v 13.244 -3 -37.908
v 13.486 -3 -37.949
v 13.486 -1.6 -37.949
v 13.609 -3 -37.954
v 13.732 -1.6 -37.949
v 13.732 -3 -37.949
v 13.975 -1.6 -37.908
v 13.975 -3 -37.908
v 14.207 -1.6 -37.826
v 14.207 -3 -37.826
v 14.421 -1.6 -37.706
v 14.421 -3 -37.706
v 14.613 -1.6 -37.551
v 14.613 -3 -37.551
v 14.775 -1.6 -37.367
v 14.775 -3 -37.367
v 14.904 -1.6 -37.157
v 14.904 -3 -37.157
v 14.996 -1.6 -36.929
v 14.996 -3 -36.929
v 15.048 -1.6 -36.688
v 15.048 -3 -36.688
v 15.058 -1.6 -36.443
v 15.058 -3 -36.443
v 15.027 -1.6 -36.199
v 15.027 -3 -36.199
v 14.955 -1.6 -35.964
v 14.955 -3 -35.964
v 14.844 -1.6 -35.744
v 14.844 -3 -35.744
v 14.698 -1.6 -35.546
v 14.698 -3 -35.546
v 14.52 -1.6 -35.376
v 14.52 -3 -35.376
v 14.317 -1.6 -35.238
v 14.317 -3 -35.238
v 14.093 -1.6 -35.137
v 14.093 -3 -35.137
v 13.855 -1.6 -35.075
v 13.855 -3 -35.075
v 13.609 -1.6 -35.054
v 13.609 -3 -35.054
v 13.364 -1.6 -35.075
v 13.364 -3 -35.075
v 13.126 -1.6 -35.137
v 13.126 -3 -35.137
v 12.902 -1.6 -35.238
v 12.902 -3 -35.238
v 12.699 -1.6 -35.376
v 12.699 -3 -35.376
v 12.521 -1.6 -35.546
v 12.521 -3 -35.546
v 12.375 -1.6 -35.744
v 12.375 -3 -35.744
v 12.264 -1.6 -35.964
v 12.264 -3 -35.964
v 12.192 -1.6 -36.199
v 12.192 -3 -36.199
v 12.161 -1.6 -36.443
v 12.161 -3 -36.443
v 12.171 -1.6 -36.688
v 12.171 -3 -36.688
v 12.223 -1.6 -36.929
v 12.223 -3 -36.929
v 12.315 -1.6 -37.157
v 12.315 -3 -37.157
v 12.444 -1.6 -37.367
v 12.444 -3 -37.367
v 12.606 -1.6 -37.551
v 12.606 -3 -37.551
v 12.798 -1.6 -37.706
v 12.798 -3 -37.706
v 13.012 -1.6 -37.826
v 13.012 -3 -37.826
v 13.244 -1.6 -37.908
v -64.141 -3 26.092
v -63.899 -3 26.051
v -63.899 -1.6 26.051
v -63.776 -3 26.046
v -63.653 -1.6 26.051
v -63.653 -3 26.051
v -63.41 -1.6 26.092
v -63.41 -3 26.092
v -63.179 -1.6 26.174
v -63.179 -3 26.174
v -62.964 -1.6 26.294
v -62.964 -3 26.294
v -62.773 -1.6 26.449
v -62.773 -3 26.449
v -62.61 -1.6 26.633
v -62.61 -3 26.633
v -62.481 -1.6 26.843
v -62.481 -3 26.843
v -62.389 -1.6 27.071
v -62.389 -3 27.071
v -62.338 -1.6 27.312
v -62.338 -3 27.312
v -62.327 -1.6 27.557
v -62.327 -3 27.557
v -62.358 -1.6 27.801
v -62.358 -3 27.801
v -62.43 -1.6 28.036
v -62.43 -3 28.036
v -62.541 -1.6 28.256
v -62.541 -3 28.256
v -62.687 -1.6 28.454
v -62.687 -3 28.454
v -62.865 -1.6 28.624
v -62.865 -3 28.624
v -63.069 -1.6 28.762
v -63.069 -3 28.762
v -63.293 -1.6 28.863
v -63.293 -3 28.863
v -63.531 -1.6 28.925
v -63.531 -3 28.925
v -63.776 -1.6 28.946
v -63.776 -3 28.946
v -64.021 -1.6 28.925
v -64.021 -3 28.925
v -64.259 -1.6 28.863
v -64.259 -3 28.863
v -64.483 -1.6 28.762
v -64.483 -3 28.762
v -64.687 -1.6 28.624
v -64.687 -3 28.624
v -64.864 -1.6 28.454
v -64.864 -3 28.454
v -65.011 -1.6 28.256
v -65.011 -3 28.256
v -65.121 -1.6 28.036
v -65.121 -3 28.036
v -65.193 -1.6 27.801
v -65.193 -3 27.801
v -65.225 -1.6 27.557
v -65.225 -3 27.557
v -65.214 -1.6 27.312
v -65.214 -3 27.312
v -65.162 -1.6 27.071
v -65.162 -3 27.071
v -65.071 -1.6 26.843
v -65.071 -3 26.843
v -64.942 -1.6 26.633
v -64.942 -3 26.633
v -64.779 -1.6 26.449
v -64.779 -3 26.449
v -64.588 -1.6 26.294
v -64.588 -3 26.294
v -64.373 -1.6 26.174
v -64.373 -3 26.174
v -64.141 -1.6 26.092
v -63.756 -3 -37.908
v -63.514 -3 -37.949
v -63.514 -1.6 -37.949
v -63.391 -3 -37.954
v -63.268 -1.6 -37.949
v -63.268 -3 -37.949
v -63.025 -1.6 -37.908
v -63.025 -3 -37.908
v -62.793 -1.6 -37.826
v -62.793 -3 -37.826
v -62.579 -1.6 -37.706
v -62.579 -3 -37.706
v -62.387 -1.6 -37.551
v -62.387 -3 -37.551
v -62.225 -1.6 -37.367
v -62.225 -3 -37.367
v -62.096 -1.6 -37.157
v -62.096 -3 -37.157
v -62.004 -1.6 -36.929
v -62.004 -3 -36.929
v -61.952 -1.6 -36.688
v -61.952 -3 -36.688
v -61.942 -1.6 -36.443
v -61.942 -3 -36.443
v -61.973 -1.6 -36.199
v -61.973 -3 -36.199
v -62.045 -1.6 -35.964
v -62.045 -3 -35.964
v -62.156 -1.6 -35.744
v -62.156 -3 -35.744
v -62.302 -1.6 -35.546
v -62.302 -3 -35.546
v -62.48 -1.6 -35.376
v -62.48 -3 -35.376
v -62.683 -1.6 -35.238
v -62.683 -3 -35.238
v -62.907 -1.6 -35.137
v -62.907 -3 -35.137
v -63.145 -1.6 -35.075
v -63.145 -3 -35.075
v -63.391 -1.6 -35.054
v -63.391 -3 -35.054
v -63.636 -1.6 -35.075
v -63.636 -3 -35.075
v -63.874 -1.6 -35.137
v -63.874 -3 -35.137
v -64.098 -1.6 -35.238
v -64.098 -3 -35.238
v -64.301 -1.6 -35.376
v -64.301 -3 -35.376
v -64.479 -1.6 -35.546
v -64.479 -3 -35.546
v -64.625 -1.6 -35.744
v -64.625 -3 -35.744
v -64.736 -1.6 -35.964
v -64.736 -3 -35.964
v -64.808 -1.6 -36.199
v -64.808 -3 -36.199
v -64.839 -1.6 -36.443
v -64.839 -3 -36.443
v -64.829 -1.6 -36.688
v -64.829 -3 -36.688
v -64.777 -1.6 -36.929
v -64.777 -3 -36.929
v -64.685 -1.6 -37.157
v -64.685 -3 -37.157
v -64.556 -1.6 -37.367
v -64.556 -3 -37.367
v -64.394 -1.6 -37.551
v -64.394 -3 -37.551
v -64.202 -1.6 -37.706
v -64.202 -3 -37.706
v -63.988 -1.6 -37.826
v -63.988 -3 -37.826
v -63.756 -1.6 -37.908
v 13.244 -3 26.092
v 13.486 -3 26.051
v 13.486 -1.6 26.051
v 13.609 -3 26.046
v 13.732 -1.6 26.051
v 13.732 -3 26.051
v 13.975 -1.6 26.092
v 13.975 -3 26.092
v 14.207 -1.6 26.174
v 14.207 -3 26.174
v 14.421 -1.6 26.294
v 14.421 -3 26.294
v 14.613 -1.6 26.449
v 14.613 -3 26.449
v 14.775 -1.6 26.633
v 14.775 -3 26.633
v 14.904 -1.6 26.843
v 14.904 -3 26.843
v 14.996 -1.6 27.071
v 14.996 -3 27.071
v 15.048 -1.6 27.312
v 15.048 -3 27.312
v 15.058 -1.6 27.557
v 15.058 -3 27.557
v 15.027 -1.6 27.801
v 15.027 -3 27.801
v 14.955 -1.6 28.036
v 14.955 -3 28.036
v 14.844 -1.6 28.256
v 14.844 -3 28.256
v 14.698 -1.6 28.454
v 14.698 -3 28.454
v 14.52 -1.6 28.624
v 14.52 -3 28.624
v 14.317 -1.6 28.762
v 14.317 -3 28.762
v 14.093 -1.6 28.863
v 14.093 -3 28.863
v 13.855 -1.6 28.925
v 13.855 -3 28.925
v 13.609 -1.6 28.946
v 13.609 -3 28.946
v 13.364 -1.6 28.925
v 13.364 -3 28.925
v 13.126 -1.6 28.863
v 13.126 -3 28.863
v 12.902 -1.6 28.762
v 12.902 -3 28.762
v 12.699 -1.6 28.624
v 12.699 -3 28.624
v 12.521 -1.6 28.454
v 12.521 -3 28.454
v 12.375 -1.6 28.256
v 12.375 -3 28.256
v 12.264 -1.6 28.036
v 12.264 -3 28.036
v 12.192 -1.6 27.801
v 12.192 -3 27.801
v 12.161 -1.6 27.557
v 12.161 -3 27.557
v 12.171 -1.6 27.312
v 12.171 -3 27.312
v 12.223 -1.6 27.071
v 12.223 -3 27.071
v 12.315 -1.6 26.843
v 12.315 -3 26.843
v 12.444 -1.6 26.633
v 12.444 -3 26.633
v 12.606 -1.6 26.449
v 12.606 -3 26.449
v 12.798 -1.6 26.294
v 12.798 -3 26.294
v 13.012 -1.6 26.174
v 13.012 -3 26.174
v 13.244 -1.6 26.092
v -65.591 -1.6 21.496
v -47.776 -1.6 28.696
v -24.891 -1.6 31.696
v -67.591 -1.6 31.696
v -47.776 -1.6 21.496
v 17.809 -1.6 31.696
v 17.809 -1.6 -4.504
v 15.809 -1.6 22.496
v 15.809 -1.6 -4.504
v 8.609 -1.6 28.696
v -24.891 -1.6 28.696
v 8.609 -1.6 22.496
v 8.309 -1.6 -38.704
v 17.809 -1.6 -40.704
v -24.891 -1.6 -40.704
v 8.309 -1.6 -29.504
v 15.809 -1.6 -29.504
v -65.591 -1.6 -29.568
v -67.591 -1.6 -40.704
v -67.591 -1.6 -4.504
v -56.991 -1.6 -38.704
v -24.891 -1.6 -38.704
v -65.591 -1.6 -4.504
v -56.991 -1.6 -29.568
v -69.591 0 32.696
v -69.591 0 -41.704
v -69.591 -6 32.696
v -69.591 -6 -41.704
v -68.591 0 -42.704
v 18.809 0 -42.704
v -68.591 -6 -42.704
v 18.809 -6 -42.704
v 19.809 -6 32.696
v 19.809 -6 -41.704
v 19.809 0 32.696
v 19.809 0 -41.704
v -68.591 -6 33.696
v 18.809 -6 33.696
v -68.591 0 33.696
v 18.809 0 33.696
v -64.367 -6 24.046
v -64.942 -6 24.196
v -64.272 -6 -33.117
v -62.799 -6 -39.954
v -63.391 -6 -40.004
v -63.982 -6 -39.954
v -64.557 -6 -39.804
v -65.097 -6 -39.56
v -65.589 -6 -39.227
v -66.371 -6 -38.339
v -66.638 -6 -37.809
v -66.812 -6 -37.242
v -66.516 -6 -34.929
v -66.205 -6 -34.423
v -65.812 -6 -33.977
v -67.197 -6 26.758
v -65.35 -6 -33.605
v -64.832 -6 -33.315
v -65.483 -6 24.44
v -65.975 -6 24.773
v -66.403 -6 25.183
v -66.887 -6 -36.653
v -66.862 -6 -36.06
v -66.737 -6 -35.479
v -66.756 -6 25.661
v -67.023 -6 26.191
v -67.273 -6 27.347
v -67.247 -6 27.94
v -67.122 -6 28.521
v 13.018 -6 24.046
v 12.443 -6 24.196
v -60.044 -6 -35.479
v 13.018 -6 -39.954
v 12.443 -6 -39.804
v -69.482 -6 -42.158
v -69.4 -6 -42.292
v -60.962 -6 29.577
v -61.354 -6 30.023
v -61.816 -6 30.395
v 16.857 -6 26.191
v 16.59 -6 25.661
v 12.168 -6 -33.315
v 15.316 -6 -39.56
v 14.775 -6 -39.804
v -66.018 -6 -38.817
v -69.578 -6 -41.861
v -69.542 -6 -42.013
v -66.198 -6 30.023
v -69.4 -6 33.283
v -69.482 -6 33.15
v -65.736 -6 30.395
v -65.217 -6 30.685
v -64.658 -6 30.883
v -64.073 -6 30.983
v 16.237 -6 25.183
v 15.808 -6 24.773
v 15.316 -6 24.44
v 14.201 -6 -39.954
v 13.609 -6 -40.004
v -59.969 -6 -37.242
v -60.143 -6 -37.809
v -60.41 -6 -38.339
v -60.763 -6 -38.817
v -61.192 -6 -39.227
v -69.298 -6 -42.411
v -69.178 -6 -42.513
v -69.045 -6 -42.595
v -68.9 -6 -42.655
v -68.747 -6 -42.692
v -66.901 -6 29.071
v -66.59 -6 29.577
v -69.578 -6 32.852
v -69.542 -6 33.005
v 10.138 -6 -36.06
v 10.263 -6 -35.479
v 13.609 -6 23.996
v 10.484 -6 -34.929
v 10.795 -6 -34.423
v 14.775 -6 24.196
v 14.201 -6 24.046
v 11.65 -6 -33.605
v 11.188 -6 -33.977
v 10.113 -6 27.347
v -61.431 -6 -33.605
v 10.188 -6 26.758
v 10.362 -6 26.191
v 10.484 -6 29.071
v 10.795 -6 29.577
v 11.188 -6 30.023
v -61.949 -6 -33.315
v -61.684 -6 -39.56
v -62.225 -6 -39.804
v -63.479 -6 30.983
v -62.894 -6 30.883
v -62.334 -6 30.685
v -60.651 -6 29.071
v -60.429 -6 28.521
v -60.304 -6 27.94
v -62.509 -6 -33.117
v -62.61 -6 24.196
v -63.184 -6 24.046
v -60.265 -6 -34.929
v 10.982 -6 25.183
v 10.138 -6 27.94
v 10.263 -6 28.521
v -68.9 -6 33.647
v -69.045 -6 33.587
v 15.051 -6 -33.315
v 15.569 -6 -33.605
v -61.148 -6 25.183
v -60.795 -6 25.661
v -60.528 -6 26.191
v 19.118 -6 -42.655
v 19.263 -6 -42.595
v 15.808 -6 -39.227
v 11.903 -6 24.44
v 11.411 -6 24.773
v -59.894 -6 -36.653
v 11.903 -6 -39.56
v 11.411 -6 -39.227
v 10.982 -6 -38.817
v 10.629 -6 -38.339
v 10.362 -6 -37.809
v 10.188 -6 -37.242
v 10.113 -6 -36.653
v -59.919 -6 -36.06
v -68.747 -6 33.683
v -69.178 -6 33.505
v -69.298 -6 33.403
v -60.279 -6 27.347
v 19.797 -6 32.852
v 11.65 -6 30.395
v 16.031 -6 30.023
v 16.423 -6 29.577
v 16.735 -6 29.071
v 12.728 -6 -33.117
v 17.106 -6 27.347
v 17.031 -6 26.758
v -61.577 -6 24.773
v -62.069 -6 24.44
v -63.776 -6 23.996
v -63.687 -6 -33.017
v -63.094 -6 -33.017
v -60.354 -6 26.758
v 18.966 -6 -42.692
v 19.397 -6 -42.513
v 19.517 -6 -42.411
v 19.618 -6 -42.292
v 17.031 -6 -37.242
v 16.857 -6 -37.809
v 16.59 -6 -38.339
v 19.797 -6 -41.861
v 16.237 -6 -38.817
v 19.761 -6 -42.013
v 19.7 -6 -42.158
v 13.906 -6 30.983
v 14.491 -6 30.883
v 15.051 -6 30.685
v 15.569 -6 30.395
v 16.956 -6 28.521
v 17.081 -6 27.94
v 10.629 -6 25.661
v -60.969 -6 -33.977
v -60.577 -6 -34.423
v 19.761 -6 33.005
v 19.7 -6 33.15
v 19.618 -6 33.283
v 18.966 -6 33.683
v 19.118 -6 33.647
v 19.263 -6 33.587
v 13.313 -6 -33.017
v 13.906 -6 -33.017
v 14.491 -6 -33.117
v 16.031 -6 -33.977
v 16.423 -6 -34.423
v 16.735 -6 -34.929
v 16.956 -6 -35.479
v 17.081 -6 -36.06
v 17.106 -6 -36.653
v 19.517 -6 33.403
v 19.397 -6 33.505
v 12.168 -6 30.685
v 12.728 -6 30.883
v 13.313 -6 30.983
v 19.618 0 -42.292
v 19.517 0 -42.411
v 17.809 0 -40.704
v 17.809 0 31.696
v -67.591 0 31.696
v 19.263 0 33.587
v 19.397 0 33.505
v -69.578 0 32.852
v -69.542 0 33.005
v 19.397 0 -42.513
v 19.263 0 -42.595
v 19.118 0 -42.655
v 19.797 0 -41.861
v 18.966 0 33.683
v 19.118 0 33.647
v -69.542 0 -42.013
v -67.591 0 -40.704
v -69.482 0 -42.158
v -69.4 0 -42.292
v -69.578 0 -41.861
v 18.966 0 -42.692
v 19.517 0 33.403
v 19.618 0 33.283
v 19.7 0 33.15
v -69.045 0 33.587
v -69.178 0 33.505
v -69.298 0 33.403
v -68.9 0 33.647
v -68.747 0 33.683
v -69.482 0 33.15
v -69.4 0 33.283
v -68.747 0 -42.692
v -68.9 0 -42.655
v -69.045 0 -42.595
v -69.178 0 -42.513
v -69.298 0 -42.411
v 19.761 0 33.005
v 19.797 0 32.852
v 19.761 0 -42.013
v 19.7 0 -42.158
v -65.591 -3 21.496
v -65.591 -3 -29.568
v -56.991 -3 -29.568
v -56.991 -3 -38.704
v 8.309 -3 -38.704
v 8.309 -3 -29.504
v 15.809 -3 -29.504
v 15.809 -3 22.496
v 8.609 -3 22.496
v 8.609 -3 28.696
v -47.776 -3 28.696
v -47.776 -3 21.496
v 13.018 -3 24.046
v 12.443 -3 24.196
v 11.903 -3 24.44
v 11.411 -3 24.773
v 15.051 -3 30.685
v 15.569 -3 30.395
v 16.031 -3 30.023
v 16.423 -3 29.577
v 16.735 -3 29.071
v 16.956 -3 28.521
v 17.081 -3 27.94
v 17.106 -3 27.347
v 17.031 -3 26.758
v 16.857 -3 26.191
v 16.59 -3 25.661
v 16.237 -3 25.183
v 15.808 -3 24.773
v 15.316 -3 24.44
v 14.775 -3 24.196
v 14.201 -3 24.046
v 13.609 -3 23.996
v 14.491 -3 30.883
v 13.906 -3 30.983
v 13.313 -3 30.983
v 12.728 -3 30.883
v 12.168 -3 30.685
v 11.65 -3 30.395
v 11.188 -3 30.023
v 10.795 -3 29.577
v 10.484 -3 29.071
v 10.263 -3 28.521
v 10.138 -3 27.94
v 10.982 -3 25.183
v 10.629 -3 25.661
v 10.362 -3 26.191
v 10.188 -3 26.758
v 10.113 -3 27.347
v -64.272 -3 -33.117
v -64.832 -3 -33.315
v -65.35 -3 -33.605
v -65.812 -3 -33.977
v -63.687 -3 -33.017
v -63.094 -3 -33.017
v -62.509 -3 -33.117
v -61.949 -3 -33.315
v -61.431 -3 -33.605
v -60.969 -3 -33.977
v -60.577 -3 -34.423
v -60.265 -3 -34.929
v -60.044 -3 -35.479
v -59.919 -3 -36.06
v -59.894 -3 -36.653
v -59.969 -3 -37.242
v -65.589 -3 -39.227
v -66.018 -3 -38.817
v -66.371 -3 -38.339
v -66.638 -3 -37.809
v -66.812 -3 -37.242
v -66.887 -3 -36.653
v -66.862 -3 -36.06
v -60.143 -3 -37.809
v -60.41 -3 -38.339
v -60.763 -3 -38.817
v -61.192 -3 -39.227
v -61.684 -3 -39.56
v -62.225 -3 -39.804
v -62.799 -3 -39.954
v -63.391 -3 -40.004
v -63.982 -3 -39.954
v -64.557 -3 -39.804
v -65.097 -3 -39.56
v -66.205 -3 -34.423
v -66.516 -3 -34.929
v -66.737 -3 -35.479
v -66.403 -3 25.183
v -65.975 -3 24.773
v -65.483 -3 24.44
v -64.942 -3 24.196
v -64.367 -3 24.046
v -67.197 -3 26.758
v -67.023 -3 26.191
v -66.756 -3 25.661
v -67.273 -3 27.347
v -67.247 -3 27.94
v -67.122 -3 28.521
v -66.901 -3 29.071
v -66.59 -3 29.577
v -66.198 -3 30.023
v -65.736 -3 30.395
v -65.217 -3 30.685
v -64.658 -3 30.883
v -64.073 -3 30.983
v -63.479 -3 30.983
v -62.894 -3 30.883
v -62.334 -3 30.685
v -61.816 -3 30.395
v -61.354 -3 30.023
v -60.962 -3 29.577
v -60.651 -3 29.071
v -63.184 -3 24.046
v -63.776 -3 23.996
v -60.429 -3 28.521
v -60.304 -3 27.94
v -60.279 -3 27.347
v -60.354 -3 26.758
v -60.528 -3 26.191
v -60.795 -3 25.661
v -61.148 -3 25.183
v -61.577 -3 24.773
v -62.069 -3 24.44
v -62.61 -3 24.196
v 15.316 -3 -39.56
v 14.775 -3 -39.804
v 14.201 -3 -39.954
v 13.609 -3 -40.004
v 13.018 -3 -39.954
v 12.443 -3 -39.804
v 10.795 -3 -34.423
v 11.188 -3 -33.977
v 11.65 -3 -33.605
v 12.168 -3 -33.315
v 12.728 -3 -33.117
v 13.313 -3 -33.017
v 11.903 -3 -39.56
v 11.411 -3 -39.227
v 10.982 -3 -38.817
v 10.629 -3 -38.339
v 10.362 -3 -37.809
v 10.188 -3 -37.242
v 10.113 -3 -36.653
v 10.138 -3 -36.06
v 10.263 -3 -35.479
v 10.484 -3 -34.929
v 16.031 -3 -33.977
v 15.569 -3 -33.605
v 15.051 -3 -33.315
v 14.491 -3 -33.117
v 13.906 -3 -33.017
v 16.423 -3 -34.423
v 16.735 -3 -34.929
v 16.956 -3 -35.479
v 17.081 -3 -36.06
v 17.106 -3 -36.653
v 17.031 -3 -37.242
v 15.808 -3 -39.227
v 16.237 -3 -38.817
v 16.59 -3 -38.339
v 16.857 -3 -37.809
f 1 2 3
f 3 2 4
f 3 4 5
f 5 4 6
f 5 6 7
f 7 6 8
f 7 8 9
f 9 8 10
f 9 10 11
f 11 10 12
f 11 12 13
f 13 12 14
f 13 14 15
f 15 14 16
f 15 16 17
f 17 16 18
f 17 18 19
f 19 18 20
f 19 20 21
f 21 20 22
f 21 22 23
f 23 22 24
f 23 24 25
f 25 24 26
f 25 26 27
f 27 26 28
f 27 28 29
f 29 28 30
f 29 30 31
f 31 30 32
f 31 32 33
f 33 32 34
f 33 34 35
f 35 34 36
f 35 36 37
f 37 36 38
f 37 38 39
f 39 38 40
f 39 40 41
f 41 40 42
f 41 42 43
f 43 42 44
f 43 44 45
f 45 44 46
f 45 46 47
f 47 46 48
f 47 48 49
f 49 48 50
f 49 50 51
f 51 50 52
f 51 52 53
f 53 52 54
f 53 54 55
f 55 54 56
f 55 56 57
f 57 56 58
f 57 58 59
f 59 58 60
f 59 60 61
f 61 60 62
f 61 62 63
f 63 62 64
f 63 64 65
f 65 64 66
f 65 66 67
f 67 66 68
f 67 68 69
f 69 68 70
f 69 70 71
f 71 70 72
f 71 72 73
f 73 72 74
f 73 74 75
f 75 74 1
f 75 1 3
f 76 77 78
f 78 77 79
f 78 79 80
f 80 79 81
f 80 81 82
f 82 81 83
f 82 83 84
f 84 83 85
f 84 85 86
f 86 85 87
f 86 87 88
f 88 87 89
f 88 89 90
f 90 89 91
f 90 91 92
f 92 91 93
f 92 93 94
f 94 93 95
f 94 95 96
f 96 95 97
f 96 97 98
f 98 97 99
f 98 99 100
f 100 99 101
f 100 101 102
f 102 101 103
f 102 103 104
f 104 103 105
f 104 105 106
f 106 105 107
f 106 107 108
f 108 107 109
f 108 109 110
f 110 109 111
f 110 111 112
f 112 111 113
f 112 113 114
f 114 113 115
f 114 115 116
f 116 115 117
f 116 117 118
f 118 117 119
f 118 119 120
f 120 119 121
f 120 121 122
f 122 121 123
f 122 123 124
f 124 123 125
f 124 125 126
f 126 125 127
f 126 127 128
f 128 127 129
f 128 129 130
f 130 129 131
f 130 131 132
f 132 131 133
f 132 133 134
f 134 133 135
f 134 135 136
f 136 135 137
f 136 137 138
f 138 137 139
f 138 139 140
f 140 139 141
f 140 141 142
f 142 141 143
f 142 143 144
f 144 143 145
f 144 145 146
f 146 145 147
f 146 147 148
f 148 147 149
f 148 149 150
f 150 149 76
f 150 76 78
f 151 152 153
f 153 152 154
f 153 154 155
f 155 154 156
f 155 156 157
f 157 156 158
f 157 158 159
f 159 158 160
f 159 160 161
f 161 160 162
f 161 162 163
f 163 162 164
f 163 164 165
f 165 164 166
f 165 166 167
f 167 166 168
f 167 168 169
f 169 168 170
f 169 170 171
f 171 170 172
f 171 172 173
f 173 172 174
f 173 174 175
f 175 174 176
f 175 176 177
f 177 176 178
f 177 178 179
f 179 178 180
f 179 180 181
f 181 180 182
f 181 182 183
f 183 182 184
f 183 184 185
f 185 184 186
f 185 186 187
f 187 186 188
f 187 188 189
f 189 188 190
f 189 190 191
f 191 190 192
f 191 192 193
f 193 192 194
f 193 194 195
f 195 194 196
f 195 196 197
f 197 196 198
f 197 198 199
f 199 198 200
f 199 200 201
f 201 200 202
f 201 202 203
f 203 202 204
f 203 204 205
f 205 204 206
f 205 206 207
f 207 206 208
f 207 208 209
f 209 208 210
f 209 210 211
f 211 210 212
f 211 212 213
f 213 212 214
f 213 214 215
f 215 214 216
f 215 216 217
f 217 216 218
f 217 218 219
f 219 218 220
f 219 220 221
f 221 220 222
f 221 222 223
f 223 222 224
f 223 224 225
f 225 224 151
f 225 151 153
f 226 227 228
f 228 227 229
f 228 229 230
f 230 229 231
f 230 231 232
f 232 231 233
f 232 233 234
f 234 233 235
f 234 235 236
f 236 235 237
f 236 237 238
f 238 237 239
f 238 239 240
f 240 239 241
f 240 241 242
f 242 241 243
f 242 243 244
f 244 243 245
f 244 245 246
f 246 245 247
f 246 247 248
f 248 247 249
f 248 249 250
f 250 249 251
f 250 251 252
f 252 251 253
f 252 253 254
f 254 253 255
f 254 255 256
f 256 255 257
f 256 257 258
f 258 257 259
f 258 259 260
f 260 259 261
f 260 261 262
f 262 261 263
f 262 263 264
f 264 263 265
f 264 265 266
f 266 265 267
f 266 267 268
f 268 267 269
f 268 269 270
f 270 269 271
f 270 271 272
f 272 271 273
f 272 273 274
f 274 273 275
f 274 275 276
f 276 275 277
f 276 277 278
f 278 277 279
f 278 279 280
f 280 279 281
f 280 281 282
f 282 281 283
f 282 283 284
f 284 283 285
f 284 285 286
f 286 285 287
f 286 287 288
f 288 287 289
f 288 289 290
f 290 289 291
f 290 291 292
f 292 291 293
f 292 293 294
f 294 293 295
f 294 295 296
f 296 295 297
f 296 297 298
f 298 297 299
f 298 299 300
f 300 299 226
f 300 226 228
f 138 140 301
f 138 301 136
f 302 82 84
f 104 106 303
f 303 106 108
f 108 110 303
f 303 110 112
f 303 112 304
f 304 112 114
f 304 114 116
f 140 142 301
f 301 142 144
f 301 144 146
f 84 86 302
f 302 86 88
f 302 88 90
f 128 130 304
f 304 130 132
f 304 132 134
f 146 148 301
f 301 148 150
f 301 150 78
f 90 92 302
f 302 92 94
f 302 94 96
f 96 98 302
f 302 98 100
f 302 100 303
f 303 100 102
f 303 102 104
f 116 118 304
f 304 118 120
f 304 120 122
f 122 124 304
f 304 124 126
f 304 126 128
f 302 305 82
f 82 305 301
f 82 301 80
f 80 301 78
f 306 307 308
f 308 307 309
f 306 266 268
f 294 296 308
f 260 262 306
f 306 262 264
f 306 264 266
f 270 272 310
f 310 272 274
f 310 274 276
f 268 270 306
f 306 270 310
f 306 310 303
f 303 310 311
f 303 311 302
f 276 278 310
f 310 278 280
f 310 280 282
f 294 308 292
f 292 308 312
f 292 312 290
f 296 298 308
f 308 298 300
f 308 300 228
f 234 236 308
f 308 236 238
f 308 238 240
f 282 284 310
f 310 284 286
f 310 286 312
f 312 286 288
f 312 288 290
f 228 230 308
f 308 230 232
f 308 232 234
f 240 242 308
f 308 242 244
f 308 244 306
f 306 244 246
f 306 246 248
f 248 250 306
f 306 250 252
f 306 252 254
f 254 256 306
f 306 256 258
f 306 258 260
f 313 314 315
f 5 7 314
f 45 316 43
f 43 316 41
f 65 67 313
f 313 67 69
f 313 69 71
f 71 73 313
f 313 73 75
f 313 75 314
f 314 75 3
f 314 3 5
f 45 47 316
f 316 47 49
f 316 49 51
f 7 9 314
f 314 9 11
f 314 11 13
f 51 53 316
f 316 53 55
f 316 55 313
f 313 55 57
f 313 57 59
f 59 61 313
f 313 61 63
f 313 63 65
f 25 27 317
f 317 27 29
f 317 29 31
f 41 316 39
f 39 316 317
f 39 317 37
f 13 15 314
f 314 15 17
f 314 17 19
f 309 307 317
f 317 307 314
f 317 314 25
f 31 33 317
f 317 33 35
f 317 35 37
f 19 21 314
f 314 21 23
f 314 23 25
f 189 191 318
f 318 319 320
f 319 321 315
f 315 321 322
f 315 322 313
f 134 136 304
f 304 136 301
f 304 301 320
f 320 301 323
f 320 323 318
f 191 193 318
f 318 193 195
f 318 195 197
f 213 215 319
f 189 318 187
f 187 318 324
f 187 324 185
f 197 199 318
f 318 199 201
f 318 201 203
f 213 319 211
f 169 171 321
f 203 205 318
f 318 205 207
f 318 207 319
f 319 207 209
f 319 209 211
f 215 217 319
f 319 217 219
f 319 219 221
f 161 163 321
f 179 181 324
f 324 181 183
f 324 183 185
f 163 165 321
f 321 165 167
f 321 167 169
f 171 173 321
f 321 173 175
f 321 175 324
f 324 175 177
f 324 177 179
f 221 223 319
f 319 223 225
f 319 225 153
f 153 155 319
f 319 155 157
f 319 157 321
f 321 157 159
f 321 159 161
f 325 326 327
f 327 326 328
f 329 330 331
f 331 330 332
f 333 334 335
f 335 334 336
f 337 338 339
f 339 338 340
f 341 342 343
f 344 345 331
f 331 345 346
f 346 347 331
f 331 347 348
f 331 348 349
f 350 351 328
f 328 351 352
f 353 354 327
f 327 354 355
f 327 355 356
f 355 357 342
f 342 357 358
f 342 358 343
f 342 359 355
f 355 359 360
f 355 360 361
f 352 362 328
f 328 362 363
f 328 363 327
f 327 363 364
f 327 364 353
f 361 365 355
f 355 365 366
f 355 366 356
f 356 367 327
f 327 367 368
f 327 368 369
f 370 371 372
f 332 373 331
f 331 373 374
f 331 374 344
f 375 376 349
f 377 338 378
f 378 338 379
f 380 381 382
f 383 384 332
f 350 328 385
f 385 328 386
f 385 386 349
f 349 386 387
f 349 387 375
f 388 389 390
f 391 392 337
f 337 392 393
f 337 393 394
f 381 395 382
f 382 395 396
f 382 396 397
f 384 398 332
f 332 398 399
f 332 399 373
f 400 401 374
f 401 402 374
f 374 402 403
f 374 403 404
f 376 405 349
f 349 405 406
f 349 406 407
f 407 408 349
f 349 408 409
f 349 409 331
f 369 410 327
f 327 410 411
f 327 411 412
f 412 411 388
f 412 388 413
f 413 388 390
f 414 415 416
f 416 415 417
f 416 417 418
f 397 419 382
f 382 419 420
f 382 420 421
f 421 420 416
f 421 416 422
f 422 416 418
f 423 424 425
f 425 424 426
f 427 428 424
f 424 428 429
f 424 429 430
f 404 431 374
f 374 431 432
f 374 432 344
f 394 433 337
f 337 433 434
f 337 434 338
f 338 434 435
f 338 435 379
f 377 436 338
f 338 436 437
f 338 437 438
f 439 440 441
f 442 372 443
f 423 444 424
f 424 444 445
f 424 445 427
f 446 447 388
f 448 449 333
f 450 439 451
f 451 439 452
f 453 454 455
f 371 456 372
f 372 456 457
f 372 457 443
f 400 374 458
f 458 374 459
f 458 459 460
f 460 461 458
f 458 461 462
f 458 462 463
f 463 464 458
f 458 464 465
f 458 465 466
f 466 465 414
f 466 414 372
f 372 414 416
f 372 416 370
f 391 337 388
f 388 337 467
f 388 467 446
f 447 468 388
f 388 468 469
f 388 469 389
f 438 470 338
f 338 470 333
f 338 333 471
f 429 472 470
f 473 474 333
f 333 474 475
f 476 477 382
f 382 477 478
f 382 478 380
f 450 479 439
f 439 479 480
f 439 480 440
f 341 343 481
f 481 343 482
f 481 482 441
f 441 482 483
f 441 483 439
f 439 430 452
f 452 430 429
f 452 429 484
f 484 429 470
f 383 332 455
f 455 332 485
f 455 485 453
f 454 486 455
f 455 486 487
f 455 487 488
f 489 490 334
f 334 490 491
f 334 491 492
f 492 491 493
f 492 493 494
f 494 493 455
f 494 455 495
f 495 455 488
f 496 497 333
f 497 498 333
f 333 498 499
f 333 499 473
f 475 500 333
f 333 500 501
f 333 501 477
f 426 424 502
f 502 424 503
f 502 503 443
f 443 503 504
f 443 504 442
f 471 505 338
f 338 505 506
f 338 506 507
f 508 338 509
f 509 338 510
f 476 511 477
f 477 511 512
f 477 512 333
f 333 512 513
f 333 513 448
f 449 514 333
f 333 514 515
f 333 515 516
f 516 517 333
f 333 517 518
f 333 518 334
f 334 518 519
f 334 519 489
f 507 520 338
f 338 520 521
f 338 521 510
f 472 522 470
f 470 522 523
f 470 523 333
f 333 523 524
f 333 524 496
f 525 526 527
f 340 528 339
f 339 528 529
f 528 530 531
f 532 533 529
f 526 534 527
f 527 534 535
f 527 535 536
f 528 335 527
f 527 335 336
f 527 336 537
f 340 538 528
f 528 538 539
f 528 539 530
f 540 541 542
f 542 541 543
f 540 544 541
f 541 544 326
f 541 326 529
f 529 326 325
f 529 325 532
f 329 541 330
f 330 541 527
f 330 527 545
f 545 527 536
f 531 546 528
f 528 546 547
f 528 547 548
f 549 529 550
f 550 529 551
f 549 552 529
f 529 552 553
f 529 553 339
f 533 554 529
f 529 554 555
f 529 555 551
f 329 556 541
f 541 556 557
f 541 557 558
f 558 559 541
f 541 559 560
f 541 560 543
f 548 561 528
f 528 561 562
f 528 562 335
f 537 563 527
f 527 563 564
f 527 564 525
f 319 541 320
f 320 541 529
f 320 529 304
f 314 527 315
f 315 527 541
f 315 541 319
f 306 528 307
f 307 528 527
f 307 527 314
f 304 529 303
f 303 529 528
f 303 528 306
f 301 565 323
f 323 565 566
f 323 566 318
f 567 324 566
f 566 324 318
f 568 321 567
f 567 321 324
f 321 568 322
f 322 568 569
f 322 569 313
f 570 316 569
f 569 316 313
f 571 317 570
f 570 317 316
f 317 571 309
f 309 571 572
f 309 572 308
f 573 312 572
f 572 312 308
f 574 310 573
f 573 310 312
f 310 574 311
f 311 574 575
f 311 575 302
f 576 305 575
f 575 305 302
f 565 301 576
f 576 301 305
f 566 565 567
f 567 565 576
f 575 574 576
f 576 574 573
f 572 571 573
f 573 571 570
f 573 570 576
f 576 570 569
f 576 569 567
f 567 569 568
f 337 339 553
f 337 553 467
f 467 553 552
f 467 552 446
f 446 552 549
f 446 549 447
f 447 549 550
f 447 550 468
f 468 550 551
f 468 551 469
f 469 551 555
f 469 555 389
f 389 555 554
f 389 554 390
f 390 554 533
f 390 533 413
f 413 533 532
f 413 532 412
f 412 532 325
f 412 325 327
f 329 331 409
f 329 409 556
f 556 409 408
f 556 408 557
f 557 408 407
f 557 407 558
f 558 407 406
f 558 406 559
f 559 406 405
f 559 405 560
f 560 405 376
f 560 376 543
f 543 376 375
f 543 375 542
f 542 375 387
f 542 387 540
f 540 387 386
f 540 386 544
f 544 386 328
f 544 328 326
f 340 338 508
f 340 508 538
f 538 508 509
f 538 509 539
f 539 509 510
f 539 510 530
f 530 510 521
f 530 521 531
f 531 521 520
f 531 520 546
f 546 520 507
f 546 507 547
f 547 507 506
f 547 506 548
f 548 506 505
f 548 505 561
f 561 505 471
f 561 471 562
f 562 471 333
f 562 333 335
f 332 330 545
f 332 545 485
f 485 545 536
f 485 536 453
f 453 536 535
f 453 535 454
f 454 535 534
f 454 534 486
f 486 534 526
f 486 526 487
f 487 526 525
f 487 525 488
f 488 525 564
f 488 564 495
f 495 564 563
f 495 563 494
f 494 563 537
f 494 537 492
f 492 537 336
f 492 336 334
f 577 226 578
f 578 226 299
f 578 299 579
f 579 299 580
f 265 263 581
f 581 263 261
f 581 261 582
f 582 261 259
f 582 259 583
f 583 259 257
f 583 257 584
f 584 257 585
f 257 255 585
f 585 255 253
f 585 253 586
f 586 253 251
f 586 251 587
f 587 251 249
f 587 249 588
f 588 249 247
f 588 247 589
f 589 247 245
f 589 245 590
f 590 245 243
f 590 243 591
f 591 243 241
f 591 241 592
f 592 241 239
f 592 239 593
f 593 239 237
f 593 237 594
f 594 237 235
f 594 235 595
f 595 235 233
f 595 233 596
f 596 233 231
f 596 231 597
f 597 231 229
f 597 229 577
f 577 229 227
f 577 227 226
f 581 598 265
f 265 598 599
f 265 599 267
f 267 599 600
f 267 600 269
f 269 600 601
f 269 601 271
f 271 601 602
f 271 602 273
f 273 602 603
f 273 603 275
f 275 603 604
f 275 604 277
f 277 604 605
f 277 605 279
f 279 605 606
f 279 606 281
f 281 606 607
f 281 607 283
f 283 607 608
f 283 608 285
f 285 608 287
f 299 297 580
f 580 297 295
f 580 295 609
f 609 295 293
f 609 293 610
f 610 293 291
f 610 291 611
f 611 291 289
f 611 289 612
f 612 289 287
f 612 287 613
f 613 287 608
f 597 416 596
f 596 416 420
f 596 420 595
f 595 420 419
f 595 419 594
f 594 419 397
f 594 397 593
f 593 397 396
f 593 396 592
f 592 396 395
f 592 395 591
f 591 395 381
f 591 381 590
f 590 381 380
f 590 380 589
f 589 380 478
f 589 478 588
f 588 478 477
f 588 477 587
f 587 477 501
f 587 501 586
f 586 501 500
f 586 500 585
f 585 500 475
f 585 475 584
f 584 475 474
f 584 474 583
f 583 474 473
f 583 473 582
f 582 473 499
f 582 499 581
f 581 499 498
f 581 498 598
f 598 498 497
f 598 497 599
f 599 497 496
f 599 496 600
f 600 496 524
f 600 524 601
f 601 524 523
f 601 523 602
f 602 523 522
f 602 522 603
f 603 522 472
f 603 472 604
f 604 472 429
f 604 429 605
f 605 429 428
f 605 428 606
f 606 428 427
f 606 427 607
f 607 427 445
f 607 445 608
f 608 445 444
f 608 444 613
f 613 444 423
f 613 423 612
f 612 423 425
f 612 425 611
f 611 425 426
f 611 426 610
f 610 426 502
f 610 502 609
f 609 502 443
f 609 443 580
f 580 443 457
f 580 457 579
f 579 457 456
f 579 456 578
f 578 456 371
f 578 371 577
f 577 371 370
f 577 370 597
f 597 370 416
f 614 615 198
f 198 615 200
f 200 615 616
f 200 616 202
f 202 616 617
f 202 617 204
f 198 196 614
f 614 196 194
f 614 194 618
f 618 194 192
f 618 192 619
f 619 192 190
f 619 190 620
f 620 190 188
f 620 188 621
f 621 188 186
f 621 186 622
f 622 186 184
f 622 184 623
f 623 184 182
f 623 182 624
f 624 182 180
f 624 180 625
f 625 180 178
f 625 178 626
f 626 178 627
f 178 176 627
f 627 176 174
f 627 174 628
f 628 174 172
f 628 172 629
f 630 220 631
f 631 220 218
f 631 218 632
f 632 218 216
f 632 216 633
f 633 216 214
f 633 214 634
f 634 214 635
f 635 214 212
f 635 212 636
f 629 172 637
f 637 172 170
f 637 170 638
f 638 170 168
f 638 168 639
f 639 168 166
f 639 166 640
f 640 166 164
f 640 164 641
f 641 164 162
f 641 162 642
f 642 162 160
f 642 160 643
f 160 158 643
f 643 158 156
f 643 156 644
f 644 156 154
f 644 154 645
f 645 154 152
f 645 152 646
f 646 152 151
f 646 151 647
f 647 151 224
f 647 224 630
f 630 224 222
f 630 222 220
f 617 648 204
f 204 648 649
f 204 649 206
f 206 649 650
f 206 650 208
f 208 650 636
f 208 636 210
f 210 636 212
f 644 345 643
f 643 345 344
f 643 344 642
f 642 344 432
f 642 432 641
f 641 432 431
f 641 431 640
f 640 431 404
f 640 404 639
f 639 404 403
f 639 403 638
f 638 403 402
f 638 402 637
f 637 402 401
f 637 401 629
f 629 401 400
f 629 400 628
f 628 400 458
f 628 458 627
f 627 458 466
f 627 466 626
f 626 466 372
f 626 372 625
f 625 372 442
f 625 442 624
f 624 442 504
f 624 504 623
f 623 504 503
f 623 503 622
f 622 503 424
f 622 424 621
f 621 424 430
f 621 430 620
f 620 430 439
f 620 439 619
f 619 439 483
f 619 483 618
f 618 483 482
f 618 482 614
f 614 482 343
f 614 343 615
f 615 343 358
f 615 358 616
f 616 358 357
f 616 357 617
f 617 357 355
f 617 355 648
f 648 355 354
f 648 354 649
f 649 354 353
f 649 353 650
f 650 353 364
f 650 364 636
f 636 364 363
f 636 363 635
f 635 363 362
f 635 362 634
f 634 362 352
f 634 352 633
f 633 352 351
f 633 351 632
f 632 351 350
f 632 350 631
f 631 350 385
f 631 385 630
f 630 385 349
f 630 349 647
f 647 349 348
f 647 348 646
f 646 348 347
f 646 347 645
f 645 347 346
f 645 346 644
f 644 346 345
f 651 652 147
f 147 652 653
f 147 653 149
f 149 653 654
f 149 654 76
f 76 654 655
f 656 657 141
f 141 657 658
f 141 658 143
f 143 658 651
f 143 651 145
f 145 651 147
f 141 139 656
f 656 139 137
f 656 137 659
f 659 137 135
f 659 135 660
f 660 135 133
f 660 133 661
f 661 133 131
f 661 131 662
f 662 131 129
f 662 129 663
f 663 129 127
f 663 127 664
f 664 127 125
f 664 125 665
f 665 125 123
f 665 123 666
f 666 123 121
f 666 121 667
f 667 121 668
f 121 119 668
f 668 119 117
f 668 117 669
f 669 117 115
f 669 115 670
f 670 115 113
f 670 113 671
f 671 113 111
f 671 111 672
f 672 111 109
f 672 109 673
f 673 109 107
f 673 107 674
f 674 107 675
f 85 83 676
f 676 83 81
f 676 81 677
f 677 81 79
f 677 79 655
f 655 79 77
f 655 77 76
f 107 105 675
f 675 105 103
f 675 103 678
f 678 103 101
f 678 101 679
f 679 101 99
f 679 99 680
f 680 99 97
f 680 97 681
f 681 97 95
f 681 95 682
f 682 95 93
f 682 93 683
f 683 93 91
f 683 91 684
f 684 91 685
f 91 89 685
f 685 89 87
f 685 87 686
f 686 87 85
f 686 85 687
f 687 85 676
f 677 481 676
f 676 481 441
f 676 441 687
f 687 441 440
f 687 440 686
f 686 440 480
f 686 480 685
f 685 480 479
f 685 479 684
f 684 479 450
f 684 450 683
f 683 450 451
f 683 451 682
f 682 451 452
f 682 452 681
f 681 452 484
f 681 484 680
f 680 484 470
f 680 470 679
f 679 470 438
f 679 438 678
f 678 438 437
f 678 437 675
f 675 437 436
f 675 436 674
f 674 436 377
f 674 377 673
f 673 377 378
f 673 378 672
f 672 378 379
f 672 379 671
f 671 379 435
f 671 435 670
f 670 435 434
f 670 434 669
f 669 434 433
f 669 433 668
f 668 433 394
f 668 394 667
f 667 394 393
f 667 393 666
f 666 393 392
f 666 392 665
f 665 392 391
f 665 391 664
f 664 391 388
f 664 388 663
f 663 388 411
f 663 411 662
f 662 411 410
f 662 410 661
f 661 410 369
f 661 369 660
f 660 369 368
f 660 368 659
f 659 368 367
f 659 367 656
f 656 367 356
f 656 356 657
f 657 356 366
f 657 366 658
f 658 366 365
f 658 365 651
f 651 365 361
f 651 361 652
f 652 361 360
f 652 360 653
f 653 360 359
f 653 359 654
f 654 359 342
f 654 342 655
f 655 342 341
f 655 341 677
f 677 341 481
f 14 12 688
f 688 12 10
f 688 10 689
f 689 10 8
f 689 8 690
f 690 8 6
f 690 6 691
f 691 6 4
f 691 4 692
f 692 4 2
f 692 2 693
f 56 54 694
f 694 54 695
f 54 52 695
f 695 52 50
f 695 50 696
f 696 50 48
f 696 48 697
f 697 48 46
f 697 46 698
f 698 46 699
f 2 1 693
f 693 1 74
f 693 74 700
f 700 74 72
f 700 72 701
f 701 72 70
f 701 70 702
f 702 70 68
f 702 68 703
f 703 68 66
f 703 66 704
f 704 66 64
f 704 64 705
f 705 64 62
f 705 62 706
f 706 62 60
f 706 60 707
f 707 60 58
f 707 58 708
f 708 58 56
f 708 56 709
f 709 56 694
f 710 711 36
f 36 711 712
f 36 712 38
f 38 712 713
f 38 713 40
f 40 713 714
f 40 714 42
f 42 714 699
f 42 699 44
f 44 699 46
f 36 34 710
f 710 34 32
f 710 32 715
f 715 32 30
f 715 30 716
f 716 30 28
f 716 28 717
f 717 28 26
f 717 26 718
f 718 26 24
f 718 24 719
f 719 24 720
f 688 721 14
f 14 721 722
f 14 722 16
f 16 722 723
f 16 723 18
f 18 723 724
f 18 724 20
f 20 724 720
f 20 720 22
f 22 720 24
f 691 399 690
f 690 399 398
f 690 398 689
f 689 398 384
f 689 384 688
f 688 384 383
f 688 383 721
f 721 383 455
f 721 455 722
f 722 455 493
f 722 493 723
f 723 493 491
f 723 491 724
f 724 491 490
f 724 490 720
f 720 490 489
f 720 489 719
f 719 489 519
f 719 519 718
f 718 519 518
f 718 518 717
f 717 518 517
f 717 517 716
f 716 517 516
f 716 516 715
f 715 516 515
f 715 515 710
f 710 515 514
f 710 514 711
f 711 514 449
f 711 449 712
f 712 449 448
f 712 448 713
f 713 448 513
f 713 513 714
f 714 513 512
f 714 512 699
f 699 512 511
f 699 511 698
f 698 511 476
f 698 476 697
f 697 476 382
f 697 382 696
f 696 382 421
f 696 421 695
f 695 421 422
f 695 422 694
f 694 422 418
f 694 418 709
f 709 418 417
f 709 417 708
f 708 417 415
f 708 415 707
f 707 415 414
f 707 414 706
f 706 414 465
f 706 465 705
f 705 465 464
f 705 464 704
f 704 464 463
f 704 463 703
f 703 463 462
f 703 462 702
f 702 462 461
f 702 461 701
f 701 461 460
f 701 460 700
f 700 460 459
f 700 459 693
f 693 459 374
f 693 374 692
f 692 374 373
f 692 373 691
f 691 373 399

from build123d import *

# Parameters (mm, degrees)
SKETCH1_W           = 89.4
SKETCH1_H           = 76.4
BOSS_EXTRUDE1_DEPTH = 6
SKETCH1_5_W         = 85.4
SKETCH1_5_H         = 72.4
CUT_EXTRUDE2_DEPTH  = 1.6
CUT_EXTRUDE3_DEPTH  = 3
SKETCH1_7_R         = 1.45
CUT_EXTRUDE4_DEPTH  = 82.868794295
FILLET1_R           = 1
SKETCH2_R           = 3.5
CUT_EXTRUDE5_DEPTH  = 3


with BuildPart() as part:
    # Sketch1 → Boss-Extrude1 (new body)
    with BuildSketch(Plane(origin=(0, 0, 0), x_dir=(1, 0, 0), z_dir=(0, 1, 0))):
        with Locations((-24.890531337, 4.504302213)):
            Rectangle(SKETCH1_W, SKETCH1_H)
    extrude(amount=-BOSS_EXTRUDE1_DEPTH)

    # Sketch1<5> → Cut-Extrude2 (cut)
    with BuildSketch(Plane(origin=(0, 0, 0), x_dir=(1, 0, 0), z_dir=(0, 1, 0))):
        with Locations((-24.890531337, 4.504302213)):
            Rectangle(SKETCH1_5_W, SKETCH1_5_H)
    extrude(amount=-CUT_EXTRUDE2_DEPTH, mode=Mode.SUBTRACT)

    # Sketch1<6> → Cut-Extrude3 (cut)
    with BuildSketch(Plane(origin=(0, 0, 0), x_dir=(1, 0, 0), z_dir=(0, 1, 0))):
        Polygon((-47.775836727, -21.495697787), (-65.590531337, -21.495697787), (-65.590531337, 29.568169386), (-56.990531337, 29.568169386), (-56.990531337, 38.704302213), (8.309468663, 38.704302213), (8.309468663, 29.504302213), (15.809468663, 29.504302213), (15.809468663, -22.495697787), (8.609468663, -22.495697787), (8.609468663, -28.695697787), (-47.775836727, -28.695697787), align=None)
    extrude(amount=-CUT_EXTRUDE3_DEPTH, mode=Mode.SUBTRACT)

    # Sketch1<7> → Cut-Extrude4 (cut, through all)
    with BuildSketch(Plane(origin=(0, 0, 0), x_dir=(1, 0, 0), z_dir=(0, 1, 0))):
        with Locations((13.609468663, 36.504302213)):
            Circle(SKETCH1_7_R)
        with Locations((-63.775836727, -27.495697787)):
            Circle(SKETCH1_7_R)
        with Locations((-63.390531337, 36.504302213)):
            Circle(SKETCH1_7_R)
        with Locations((13.609468663, -27.495697787)):
            Circle(SKETCH1_7_R)
    extrude(amount=-CUT_EXTRUDE4_DEPTH, mode=Mode.SUBTRACT)

    # Fillet1
    fillet1_edges = [part.edges().sort_by_distance(p)[0] for p in [
        (-69.590531337, -3, 33.695697787),
        (-69.590531337, -3, -42.704302213),
        (19.809468663, -3, 33.695697787),
        (19.809468663, -3, -42.704302213),
    ]]
    fillet(fillet1_edges, radius=FILLET1_R)

    # Sketch2 → Cut-Extrude5 (cut)
    with BuildSketch(Plane.XZ.offset(6)):
        with Locations((-63.775836727, 27.495697787)):
            Circle(SKETCH2_R)
        with Locations((13.609468663, 27.495697787)):
            Circle(SKETCH2_R)
        with Locations((13.609468663, -36.504302213)):
            Circle(SKETCH2_R)
        with Locations((-63.390531337, -36.504302213)):
            Circle(SKETCH2_R)
    extrude(amount=-CUT_EXTRUDE5_DEPTH, mode=Mode.SUBTRACT)


solid = part.part
